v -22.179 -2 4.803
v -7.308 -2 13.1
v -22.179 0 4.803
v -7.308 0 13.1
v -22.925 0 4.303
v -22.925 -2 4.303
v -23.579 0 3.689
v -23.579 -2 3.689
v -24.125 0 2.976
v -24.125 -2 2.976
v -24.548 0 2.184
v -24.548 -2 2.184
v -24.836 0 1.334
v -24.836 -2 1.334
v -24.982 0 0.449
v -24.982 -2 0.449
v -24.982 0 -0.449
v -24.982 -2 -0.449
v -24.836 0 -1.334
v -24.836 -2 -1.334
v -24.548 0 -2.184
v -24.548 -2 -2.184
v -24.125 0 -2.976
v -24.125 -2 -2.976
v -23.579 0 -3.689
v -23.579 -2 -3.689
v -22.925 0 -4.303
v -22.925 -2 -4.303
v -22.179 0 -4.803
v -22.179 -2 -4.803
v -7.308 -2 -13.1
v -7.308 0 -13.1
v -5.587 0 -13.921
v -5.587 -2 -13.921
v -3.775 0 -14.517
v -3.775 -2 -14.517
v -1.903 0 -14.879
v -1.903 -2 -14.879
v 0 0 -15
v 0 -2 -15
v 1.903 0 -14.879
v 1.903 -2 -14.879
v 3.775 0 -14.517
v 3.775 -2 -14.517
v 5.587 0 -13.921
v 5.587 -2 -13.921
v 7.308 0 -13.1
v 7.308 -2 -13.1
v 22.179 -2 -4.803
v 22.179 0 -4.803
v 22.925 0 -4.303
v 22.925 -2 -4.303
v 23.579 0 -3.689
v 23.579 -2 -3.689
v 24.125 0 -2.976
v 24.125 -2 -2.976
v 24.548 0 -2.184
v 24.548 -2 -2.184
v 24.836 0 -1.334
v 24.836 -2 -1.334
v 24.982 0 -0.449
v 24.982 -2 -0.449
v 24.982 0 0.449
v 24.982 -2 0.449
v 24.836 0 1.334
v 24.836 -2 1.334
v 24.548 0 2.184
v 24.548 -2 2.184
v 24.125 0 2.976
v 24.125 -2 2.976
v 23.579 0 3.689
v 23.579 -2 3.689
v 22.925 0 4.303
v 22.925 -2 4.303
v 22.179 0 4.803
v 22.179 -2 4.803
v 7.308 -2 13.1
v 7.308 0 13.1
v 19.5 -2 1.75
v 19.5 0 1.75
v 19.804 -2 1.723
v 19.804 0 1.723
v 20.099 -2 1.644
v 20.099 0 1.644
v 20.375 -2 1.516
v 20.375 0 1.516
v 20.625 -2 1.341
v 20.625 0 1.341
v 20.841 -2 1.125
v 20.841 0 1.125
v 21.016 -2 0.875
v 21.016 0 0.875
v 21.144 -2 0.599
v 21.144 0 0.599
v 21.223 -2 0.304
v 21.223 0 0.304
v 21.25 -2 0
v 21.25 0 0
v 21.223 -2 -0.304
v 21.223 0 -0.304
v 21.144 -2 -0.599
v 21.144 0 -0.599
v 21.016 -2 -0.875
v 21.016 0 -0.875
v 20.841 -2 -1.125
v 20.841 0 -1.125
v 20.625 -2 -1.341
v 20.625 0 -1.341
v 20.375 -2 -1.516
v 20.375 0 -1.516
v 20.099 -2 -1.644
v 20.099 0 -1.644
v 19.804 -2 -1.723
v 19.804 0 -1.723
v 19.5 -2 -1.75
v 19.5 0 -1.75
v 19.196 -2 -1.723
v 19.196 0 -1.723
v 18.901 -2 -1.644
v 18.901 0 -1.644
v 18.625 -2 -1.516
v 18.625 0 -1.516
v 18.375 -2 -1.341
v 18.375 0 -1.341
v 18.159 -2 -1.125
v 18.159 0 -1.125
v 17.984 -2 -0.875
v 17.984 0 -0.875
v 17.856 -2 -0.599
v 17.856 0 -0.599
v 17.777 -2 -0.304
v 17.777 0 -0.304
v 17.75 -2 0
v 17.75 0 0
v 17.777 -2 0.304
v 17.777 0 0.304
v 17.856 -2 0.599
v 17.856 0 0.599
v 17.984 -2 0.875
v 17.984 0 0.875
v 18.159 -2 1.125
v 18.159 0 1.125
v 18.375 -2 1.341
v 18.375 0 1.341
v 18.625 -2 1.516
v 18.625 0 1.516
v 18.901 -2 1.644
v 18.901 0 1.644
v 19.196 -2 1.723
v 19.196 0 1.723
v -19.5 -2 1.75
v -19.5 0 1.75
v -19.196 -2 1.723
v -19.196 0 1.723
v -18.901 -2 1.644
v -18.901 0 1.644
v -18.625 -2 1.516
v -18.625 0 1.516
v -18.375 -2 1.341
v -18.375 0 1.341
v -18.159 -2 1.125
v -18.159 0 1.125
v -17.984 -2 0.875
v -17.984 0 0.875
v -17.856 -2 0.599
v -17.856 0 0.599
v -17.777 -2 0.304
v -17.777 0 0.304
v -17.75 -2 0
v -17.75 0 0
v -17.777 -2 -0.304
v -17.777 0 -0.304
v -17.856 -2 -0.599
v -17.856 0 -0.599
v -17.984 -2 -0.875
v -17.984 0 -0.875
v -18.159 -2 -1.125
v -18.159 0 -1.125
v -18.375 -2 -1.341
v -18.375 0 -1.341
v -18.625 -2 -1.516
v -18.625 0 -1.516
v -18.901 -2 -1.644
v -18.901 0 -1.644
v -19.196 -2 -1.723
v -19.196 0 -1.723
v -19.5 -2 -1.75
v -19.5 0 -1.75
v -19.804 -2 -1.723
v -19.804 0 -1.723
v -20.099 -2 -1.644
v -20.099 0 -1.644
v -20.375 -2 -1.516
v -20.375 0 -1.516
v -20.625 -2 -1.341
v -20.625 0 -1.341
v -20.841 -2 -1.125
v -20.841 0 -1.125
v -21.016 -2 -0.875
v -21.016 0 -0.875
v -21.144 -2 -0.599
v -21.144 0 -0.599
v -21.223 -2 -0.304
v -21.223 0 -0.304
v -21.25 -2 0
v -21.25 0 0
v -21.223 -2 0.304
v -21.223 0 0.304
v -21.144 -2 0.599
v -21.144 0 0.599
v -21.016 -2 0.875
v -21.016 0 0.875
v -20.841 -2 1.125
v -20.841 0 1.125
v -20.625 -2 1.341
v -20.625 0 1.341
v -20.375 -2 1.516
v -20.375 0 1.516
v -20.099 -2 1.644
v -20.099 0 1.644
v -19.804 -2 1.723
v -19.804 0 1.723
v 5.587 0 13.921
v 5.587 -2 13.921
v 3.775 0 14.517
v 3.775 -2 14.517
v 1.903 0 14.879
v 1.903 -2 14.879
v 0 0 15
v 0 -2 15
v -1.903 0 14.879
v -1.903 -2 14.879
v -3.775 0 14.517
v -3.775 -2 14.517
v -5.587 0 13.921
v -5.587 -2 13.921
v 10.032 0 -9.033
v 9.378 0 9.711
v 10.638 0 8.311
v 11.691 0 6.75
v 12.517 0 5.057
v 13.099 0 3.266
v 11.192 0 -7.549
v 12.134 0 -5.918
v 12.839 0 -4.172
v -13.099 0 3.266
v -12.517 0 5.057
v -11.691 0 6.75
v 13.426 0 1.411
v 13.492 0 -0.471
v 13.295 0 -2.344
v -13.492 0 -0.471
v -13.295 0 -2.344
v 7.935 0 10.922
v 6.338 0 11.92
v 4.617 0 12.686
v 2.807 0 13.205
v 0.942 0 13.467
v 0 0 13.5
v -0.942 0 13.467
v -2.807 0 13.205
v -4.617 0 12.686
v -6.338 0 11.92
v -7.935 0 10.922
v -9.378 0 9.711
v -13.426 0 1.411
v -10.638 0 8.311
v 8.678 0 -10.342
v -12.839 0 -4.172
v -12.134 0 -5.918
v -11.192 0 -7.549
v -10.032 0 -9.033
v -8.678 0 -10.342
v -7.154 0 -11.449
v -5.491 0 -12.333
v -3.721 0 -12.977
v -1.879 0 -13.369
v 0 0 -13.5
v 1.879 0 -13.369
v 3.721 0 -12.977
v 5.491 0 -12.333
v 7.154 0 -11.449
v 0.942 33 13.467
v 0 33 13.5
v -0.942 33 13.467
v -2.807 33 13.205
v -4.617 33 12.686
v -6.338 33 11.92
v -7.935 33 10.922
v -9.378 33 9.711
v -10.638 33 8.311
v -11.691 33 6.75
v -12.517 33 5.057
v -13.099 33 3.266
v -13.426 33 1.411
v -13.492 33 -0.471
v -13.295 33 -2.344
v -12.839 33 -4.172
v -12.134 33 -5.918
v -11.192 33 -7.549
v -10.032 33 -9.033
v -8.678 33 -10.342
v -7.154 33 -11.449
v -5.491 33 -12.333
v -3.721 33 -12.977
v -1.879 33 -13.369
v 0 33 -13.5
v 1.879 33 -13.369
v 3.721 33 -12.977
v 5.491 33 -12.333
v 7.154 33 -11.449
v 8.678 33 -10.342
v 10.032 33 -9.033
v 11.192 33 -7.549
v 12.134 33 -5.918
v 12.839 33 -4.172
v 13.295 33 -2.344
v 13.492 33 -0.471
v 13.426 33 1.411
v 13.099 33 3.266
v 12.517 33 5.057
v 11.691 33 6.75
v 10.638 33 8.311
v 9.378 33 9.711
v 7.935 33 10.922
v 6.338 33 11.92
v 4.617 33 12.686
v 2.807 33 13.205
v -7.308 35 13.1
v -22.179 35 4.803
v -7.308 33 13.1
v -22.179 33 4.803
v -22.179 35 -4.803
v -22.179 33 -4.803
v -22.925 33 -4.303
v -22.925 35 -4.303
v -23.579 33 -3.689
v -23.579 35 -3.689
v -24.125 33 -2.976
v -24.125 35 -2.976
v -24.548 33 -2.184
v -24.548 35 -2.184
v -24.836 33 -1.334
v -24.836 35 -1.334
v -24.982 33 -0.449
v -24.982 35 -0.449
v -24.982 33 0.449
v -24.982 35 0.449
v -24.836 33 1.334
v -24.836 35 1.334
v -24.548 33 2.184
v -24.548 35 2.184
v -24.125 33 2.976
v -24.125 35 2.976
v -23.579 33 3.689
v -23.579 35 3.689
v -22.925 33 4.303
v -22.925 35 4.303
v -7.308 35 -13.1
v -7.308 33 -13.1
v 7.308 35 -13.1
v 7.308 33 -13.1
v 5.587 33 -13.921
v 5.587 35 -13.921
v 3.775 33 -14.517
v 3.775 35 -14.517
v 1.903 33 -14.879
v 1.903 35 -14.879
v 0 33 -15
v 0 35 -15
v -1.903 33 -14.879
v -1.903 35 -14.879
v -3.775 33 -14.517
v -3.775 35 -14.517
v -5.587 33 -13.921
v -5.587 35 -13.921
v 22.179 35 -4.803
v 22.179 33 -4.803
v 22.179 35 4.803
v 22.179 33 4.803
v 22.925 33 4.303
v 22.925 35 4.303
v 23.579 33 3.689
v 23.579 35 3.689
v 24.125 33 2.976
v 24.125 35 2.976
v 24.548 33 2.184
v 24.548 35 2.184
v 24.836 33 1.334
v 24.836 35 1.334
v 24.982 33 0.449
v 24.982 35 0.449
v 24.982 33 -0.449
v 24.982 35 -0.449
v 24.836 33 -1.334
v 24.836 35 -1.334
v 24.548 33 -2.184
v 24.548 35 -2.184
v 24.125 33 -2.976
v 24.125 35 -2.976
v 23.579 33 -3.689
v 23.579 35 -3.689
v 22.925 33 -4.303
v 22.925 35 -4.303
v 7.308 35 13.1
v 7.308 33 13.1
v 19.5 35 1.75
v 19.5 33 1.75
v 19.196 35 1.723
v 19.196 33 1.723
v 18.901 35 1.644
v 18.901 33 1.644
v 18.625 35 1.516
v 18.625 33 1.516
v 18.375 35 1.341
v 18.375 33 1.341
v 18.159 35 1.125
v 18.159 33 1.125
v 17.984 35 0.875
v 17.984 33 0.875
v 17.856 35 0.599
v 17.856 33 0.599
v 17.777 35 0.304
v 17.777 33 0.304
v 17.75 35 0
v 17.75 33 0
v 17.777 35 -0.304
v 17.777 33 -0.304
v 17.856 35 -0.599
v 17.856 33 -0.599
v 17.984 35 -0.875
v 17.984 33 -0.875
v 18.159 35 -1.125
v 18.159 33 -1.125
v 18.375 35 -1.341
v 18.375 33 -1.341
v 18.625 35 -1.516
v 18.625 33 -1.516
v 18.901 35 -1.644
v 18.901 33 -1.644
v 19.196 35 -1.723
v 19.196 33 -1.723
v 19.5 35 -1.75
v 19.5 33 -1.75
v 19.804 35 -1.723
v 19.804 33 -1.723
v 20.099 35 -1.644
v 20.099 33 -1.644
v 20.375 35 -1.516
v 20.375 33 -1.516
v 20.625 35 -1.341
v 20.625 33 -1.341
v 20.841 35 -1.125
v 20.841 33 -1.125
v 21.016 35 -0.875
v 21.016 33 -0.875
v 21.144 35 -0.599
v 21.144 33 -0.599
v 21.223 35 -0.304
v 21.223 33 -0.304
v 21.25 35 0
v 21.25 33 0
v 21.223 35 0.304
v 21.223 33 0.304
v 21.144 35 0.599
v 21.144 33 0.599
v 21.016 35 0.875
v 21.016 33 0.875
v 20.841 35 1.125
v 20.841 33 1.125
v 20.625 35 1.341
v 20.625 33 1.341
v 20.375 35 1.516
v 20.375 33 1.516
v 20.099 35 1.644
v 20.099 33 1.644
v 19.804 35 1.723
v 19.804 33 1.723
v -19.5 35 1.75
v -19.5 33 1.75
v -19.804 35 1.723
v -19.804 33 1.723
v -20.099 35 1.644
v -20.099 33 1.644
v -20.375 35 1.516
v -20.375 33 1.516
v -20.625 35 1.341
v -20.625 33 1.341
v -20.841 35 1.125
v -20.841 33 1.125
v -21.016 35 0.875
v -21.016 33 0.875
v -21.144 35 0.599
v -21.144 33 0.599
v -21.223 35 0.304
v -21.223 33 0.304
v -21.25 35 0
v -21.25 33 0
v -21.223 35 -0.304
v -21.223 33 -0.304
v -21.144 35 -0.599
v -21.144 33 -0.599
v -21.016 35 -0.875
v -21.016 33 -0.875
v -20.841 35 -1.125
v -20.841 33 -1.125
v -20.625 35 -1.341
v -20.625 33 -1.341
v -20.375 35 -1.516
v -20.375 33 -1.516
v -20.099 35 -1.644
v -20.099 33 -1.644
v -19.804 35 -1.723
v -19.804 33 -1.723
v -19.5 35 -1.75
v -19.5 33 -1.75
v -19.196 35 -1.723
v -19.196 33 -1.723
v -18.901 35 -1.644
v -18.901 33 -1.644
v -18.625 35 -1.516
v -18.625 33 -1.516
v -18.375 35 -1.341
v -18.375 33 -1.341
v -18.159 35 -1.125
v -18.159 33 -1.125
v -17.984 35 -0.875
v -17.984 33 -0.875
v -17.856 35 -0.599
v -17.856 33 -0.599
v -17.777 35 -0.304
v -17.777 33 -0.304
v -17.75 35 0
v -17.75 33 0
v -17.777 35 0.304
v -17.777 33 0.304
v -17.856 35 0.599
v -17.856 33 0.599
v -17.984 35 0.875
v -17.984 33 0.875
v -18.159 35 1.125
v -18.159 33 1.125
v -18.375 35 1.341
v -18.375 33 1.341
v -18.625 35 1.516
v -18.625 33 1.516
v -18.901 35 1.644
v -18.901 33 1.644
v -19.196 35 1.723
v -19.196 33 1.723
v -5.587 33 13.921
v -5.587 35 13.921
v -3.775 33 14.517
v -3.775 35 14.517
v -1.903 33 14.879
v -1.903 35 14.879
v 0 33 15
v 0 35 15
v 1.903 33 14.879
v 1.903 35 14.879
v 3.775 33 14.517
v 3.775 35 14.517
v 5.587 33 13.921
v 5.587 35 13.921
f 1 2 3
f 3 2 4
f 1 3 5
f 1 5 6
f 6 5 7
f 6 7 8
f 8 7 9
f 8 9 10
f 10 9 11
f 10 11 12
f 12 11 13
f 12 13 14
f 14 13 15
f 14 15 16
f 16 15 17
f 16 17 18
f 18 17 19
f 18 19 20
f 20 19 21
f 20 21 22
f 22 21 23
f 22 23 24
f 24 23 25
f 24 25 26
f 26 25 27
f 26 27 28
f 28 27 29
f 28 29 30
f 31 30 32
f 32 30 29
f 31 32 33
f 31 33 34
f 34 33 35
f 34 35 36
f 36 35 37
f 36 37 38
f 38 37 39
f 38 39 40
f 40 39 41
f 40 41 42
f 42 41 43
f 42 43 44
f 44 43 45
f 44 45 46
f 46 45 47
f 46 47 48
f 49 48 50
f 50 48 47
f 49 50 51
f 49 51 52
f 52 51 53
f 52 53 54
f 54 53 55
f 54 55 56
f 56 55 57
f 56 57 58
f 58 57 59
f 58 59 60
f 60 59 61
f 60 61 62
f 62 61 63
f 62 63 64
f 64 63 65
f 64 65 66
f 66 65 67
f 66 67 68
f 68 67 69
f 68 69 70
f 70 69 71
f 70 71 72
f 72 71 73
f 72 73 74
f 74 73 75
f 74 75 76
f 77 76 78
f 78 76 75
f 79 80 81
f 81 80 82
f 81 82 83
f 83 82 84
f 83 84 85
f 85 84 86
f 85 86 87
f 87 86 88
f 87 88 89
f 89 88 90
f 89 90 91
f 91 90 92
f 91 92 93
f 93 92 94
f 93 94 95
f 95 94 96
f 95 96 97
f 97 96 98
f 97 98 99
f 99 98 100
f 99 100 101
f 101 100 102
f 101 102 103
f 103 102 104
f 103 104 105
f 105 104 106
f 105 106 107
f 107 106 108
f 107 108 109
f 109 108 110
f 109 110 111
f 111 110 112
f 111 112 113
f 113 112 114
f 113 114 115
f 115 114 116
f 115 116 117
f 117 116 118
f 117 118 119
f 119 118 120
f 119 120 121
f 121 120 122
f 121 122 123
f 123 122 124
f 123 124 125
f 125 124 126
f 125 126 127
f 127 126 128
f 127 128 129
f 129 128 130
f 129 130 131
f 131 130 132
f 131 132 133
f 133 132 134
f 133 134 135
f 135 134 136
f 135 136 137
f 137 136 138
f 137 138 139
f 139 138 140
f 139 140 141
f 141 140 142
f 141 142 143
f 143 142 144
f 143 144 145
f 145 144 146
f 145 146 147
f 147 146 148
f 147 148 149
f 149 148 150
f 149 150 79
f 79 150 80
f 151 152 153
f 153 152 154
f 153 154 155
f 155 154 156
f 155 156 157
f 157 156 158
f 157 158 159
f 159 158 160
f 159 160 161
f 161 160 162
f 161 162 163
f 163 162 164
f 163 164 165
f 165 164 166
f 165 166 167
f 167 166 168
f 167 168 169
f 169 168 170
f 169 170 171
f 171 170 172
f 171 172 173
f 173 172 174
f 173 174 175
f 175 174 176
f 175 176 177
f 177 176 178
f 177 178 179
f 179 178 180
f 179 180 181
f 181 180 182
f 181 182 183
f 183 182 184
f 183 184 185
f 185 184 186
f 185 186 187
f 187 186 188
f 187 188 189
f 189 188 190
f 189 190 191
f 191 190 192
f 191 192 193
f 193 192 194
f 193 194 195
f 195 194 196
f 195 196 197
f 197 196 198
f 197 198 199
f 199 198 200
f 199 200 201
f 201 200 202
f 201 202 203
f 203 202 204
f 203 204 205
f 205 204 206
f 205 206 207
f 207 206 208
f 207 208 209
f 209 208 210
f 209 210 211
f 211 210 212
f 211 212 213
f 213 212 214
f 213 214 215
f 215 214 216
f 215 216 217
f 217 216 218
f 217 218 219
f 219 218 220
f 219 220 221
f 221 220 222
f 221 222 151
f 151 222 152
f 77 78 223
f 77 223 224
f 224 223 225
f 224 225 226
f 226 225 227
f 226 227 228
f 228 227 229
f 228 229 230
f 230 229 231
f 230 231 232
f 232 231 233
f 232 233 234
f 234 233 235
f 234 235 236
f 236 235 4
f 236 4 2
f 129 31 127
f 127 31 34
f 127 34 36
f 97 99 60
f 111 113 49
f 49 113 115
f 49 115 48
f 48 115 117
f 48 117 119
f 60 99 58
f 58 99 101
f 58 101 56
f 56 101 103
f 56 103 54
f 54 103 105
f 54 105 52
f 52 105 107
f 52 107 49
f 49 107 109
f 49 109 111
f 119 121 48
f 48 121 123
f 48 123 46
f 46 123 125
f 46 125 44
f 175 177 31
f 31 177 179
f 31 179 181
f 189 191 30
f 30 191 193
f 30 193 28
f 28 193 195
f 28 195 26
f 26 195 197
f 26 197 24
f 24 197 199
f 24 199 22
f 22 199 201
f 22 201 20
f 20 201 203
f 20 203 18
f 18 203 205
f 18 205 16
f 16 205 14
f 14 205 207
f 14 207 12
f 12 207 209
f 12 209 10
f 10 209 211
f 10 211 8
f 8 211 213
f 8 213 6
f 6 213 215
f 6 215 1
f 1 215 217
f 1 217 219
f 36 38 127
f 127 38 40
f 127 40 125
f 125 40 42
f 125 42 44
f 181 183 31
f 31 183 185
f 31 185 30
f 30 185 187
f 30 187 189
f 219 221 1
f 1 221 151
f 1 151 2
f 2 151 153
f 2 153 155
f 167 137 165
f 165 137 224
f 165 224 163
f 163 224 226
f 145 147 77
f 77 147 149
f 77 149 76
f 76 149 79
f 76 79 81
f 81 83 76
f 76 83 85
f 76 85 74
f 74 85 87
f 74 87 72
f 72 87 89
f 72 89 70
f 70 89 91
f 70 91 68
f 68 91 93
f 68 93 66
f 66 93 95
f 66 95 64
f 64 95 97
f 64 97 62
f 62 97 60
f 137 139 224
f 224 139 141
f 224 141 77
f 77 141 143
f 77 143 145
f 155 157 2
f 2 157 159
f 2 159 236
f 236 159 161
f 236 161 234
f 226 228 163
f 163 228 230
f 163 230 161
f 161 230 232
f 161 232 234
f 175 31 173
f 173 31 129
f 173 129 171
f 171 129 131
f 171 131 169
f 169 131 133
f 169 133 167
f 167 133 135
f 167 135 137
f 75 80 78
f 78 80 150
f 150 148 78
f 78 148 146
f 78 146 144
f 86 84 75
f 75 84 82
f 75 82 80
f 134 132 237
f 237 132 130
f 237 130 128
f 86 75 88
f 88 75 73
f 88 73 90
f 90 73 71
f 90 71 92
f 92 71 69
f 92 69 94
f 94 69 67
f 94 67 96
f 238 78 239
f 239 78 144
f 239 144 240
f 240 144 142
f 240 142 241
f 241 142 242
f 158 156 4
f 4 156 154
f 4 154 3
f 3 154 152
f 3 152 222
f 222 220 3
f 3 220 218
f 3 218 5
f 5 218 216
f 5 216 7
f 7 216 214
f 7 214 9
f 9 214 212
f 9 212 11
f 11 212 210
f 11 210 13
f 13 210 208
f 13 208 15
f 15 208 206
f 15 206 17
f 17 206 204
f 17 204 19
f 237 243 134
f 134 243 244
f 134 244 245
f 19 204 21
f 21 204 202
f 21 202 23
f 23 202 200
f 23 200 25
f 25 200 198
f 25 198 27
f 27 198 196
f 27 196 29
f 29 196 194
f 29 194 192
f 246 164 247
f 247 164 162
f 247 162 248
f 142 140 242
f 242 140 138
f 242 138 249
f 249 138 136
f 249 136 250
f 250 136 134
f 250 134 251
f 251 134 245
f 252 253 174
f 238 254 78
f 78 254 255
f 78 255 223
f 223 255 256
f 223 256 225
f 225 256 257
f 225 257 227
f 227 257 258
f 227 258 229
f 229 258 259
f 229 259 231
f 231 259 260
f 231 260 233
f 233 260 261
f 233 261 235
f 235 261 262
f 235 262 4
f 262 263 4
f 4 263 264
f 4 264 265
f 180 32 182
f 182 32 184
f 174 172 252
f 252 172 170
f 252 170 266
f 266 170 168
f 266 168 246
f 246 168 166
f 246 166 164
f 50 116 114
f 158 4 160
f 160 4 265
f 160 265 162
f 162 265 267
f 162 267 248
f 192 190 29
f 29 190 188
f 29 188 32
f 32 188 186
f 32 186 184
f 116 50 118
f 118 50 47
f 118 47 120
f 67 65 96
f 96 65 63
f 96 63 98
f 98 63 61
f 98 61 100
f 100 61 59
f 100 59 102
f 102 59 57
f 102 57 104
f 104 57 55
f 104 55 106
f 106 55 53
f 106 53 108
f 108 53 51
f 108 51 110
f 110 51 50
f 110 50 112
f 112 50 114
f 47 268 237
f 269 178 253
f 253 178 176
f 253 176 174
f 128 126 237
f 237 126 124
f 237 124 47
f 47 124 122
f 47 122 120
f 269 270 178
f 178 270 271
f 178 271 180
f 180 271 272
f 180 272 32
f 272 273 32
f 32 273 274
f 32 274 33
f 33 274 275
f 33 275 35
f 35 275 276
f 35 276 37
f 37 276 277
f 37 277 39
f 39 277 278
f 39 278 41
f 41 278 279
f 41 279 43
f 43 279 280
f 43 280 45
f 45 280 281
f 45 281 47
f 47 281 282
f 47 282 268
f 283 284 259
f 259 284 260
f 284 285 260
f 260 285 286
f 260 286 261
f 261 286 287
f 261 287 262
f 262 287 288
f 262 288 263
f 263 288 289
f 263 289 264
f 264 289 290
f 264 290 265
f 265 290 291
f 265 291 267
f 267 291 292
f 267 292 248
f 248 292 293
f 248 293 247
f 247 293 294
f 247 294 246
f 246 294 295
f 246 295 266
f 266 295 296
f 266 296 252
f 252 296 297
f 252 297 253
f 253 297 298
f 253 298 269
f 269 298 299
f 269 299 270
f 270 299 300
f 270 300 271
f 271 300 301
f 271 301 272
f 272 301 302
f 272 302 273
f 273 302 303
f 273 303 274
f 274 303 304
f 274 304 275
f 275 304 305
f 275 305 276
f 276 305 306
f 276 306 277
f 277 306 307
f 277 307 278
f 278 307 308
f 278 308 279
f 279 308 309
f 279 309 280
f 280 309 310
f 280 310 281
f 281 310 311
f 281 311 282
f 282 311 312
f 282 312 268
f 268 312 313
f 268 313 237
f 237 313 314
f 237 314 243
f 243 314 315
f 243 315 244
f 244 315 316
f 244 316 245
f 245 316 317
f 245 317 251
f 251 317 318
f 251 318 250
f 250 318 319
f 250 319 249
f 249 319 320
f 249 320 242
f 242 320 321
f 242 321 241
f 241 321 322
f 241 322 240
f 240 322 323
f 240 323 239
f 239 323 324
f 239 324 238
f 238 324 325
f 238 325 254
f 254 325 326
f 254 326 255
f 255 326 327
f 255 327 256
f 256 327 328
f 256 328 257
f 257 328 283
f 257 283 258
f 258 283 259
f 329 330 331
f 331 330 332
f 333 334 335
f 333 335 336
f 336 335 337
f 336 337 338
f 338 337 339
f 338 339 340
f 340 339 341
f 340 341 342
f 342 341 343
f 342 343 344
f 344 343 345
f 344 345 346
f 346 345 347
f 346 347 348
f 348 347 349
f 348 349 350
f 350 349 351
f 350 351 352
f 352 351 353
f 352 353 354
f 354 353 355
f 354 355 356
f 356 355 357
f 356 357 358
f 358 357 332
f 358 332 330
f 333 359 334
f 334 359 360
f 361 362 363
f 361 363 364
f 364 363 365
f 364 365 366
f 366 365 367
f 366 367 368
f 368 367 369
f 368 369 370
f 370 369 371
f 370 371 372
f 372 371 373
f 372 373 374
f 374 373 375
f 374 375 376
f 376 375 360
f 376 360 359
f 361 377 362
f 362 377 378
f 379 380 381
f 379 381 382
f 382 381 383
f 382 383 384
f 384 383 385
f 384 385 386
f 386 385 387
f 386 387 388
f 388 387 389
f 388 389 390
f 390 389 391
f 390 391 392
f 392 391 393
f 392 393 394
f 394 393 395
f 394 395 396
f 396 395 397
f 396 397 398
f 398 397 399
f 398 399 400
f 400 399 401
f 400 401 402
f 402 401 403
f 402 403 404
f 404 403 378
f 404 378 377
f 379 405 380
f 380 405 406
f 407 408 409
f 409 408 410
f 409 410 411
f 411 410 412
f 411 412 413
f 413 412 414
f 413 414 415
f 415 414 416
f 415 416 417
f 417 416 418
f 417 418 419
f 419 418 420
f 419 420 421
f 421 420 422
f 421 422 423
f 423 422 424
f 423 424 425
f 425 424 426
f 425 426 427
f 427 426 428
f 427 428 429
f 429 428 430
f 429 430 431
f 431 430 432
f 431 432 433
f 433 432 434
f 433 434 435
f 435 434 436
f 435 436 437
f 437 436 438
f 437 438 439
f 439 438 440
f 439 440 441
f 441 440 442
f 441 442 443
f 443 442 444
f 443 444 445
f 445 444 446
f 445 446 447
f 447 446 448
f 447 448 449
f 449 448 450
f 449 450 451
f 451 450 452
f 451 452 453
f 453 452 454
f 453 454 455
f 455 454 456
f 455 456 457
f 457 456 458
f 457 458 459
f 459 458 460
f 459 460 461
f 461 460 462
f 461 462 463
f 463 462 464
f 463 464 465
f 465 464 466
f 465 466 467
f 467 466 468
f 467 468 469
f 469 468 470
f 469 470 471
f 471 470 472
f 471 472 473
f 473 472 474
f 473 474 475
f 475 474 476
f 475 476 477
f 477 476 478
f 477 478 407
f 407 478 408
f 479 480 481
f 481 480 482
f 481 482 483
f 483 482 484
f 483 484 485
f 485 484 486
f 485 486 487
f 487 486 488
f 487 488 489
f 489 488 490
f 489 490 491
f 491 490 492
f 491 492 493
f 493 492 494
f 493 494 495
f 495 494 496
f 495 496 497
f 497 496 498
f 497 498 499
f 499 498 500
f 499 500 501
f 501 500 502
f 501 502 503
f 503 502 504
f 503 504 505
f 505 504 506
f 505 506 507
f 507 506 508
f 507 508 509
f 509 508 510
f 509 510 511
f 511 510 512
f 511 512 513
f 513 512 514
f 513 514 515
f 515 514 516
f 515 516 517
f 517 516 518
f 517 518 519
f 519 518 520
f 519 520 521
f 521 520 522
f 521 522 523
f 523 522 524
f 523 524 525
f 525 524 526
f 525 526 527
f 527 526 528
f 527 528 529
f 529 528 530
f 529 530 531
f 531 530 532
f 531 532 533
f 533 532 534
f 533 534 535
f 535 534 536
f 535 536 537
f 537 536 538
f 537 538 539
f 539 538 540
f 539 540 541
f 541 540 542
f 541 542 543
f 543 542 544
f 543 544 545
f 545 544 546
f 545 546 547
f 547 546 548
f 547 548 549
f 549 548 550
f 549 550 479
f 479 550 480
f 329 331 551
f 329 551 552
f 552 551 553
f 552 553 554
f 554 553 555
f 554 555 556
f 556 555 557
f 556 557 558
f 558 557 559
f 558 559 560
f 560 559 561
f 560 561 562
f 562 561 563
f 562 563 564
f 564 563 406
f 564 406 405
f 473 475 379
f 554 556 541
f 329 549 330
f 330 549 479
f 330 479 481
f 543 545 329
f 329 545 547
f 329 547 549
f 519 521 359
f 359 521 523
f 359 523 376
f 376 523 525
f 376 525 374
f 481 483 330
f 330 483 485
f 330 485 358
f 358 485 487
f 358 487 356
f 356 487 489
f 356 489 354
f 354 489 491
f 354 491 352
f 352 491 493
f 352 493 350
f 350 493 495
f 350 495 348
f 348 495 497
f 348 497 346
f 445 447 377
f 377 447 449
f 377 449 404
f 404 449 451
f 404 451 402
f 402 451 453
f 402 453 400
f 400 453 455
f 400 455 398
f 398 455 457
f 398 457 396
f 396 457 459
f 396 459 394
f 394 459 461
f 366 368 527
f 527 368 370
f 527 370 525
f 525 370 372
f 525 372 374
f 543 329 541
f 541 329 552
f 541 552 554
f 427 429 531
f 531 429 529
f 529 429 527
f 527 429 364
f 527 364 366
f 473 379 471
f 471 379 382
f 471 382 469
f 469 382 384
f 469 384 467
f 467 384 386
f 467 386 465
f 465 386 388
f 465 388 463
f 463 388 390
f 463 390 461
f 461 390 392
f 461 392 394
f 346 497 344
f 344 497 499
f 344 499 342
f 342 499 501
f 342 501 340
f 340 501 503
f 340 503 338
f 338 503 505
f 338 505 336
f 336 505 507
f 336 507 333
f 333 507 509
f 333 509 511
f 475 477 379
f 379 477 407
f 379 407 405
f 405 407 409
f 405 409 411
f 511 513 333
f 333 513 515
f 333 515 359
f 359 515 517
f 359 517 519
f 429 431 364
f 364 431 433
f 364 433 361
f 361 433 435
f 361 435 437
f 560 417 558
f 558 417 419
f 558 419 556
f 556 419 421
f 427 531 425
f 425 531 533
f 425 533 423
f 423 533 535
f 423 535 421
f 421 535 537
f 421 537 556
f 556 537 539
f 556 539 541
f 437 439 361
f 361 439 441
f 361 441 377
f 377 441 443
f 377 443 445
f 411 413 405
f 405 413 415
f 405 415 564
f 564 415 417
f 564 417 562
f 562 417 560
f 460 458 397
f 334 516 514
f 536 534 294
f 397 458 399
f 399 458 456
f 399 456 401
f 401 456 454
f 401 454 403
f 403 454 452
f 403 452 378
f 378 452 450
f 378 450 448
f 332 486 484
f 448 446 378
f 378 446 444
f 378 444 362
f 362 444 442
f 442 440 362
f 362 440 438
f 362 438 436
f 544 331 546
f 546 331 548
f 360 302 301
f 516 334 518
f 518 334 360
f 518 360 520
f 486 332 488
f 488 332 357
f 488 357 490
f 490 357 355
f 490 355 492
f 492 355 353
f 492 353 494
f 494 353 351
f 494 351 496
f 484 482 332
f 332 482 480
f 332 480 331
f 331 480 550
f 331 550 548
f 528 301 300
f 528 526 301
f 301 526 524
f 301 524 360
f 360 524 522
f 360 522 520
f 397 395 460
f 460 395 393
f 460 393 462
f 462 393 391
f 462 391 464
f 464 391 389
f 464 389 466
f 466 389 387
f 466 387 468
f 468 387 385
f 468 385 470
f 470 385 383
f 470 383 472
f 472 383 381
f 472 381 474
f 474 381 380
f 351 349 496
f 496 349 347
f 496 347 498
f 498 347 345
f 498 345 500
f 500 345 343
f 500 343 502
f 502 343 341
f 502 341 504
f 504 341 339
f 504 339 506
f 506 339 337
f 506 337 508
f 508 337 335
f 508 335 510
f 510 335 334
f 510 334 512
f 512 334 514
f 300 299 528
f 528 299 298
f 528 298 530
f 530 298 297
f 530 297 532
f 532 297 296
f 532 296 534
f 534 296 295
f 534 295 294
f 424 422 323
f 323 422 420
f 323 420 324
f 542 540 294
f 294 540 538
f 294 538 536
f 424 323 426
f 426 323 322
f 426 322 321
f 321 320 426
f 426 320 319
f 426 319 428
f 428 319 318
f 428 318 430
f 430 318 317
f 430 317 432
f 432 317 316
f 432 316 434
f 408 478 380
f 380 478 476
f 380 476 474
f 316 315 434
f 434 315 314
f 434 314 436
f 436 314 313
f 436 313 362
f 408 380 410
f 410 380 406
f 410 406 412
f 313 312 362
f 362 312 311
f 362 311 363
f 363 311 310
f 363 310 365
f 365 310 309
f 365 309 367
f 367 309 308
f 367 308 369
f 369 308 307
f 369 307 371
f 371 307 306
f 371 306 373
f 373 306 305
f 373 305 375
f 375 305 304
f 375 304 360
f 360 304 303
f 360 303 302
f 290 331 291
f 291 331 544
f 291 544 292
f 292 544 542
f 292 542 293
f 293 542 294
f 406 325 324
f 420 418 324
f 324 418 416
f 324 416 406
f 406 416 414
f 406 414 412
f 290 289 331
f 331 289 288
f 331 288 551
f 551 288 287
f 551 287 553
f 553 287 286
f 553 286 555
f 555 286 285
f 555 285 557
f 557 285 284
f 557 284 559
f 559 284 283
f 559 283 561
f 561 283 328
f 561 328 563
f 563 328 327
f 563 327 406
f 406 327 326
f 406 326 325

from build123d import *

# Parameters (mm, degrees)
SKETCH_1_R      = 1.75
EXTRUDE_1_DEPTH = 2
SKETCH_1_3_R    = 13.5
EXTRUDE_2_DEPTH = 16.5


with BuildPart() as part:
    # 草图1 → 凸台-拉伸1 (new body)
    with BuildSketch(Plane(origin=(0, 0, 0), x_dir=(1, 0, 0), z_dir=(0, 1, 0))):
        with BuildLine():
            Line((-7.307692308, 13.099527974), (-22.179487179, 4.803160257))
            ThreePointArc((-22.179487179, 4.803160257), (-25, 0), (-22.179487179, -4.803160257))
            Line((-22.179487179, -4.803160257), (-7.307692308, -13.099527974))
            ThreePointArc((-7.307692308, -13.099527974), (0, -15), (7.307692308, -13.099527974))
            Line((7.307692308, -13.099527974), (22.179487179, -4.803160257))
            ThreePointArc((22.179487179, -4.803160257), (25, 0), (22.179487179, 4.803160257))
            Line((22.179487179, 4.803160257), (7.307692308, 13.099527974))
            ThreePointArc((7.307692308, 13.099527974), (0, 15), (-7.307692308, 13.099527974))
        make_face()
        with Locations((-19.5, 0)):
            Circle(SKETCH_1_R, mode=Mode.SUBTRACT)
        with Locations((19.5, 0)):
            Circle(SKETCH_1_R, mode=Mode.SUBTRACT)
    extrude(amount=-EXTRUDE_1_DEPTH)

    # 草图1<3> → 凸台-拉伸2 (add)
    with BuildSketch(Plane(origin=(0, 0, 0), x_dir=(1, 0, 0), z_dir=(0, 1, 0))):
        Circle(SKETCH_1_3_R)
    extrude(amount=EXTRUDE_2_DEPTH)

    # 镜向3: part across plane


with BuildPart() as part_1:
    add(part.part)
    add(part.part.mirror(Plane.ZX.offset(16.5)))


solid = part_1.part
